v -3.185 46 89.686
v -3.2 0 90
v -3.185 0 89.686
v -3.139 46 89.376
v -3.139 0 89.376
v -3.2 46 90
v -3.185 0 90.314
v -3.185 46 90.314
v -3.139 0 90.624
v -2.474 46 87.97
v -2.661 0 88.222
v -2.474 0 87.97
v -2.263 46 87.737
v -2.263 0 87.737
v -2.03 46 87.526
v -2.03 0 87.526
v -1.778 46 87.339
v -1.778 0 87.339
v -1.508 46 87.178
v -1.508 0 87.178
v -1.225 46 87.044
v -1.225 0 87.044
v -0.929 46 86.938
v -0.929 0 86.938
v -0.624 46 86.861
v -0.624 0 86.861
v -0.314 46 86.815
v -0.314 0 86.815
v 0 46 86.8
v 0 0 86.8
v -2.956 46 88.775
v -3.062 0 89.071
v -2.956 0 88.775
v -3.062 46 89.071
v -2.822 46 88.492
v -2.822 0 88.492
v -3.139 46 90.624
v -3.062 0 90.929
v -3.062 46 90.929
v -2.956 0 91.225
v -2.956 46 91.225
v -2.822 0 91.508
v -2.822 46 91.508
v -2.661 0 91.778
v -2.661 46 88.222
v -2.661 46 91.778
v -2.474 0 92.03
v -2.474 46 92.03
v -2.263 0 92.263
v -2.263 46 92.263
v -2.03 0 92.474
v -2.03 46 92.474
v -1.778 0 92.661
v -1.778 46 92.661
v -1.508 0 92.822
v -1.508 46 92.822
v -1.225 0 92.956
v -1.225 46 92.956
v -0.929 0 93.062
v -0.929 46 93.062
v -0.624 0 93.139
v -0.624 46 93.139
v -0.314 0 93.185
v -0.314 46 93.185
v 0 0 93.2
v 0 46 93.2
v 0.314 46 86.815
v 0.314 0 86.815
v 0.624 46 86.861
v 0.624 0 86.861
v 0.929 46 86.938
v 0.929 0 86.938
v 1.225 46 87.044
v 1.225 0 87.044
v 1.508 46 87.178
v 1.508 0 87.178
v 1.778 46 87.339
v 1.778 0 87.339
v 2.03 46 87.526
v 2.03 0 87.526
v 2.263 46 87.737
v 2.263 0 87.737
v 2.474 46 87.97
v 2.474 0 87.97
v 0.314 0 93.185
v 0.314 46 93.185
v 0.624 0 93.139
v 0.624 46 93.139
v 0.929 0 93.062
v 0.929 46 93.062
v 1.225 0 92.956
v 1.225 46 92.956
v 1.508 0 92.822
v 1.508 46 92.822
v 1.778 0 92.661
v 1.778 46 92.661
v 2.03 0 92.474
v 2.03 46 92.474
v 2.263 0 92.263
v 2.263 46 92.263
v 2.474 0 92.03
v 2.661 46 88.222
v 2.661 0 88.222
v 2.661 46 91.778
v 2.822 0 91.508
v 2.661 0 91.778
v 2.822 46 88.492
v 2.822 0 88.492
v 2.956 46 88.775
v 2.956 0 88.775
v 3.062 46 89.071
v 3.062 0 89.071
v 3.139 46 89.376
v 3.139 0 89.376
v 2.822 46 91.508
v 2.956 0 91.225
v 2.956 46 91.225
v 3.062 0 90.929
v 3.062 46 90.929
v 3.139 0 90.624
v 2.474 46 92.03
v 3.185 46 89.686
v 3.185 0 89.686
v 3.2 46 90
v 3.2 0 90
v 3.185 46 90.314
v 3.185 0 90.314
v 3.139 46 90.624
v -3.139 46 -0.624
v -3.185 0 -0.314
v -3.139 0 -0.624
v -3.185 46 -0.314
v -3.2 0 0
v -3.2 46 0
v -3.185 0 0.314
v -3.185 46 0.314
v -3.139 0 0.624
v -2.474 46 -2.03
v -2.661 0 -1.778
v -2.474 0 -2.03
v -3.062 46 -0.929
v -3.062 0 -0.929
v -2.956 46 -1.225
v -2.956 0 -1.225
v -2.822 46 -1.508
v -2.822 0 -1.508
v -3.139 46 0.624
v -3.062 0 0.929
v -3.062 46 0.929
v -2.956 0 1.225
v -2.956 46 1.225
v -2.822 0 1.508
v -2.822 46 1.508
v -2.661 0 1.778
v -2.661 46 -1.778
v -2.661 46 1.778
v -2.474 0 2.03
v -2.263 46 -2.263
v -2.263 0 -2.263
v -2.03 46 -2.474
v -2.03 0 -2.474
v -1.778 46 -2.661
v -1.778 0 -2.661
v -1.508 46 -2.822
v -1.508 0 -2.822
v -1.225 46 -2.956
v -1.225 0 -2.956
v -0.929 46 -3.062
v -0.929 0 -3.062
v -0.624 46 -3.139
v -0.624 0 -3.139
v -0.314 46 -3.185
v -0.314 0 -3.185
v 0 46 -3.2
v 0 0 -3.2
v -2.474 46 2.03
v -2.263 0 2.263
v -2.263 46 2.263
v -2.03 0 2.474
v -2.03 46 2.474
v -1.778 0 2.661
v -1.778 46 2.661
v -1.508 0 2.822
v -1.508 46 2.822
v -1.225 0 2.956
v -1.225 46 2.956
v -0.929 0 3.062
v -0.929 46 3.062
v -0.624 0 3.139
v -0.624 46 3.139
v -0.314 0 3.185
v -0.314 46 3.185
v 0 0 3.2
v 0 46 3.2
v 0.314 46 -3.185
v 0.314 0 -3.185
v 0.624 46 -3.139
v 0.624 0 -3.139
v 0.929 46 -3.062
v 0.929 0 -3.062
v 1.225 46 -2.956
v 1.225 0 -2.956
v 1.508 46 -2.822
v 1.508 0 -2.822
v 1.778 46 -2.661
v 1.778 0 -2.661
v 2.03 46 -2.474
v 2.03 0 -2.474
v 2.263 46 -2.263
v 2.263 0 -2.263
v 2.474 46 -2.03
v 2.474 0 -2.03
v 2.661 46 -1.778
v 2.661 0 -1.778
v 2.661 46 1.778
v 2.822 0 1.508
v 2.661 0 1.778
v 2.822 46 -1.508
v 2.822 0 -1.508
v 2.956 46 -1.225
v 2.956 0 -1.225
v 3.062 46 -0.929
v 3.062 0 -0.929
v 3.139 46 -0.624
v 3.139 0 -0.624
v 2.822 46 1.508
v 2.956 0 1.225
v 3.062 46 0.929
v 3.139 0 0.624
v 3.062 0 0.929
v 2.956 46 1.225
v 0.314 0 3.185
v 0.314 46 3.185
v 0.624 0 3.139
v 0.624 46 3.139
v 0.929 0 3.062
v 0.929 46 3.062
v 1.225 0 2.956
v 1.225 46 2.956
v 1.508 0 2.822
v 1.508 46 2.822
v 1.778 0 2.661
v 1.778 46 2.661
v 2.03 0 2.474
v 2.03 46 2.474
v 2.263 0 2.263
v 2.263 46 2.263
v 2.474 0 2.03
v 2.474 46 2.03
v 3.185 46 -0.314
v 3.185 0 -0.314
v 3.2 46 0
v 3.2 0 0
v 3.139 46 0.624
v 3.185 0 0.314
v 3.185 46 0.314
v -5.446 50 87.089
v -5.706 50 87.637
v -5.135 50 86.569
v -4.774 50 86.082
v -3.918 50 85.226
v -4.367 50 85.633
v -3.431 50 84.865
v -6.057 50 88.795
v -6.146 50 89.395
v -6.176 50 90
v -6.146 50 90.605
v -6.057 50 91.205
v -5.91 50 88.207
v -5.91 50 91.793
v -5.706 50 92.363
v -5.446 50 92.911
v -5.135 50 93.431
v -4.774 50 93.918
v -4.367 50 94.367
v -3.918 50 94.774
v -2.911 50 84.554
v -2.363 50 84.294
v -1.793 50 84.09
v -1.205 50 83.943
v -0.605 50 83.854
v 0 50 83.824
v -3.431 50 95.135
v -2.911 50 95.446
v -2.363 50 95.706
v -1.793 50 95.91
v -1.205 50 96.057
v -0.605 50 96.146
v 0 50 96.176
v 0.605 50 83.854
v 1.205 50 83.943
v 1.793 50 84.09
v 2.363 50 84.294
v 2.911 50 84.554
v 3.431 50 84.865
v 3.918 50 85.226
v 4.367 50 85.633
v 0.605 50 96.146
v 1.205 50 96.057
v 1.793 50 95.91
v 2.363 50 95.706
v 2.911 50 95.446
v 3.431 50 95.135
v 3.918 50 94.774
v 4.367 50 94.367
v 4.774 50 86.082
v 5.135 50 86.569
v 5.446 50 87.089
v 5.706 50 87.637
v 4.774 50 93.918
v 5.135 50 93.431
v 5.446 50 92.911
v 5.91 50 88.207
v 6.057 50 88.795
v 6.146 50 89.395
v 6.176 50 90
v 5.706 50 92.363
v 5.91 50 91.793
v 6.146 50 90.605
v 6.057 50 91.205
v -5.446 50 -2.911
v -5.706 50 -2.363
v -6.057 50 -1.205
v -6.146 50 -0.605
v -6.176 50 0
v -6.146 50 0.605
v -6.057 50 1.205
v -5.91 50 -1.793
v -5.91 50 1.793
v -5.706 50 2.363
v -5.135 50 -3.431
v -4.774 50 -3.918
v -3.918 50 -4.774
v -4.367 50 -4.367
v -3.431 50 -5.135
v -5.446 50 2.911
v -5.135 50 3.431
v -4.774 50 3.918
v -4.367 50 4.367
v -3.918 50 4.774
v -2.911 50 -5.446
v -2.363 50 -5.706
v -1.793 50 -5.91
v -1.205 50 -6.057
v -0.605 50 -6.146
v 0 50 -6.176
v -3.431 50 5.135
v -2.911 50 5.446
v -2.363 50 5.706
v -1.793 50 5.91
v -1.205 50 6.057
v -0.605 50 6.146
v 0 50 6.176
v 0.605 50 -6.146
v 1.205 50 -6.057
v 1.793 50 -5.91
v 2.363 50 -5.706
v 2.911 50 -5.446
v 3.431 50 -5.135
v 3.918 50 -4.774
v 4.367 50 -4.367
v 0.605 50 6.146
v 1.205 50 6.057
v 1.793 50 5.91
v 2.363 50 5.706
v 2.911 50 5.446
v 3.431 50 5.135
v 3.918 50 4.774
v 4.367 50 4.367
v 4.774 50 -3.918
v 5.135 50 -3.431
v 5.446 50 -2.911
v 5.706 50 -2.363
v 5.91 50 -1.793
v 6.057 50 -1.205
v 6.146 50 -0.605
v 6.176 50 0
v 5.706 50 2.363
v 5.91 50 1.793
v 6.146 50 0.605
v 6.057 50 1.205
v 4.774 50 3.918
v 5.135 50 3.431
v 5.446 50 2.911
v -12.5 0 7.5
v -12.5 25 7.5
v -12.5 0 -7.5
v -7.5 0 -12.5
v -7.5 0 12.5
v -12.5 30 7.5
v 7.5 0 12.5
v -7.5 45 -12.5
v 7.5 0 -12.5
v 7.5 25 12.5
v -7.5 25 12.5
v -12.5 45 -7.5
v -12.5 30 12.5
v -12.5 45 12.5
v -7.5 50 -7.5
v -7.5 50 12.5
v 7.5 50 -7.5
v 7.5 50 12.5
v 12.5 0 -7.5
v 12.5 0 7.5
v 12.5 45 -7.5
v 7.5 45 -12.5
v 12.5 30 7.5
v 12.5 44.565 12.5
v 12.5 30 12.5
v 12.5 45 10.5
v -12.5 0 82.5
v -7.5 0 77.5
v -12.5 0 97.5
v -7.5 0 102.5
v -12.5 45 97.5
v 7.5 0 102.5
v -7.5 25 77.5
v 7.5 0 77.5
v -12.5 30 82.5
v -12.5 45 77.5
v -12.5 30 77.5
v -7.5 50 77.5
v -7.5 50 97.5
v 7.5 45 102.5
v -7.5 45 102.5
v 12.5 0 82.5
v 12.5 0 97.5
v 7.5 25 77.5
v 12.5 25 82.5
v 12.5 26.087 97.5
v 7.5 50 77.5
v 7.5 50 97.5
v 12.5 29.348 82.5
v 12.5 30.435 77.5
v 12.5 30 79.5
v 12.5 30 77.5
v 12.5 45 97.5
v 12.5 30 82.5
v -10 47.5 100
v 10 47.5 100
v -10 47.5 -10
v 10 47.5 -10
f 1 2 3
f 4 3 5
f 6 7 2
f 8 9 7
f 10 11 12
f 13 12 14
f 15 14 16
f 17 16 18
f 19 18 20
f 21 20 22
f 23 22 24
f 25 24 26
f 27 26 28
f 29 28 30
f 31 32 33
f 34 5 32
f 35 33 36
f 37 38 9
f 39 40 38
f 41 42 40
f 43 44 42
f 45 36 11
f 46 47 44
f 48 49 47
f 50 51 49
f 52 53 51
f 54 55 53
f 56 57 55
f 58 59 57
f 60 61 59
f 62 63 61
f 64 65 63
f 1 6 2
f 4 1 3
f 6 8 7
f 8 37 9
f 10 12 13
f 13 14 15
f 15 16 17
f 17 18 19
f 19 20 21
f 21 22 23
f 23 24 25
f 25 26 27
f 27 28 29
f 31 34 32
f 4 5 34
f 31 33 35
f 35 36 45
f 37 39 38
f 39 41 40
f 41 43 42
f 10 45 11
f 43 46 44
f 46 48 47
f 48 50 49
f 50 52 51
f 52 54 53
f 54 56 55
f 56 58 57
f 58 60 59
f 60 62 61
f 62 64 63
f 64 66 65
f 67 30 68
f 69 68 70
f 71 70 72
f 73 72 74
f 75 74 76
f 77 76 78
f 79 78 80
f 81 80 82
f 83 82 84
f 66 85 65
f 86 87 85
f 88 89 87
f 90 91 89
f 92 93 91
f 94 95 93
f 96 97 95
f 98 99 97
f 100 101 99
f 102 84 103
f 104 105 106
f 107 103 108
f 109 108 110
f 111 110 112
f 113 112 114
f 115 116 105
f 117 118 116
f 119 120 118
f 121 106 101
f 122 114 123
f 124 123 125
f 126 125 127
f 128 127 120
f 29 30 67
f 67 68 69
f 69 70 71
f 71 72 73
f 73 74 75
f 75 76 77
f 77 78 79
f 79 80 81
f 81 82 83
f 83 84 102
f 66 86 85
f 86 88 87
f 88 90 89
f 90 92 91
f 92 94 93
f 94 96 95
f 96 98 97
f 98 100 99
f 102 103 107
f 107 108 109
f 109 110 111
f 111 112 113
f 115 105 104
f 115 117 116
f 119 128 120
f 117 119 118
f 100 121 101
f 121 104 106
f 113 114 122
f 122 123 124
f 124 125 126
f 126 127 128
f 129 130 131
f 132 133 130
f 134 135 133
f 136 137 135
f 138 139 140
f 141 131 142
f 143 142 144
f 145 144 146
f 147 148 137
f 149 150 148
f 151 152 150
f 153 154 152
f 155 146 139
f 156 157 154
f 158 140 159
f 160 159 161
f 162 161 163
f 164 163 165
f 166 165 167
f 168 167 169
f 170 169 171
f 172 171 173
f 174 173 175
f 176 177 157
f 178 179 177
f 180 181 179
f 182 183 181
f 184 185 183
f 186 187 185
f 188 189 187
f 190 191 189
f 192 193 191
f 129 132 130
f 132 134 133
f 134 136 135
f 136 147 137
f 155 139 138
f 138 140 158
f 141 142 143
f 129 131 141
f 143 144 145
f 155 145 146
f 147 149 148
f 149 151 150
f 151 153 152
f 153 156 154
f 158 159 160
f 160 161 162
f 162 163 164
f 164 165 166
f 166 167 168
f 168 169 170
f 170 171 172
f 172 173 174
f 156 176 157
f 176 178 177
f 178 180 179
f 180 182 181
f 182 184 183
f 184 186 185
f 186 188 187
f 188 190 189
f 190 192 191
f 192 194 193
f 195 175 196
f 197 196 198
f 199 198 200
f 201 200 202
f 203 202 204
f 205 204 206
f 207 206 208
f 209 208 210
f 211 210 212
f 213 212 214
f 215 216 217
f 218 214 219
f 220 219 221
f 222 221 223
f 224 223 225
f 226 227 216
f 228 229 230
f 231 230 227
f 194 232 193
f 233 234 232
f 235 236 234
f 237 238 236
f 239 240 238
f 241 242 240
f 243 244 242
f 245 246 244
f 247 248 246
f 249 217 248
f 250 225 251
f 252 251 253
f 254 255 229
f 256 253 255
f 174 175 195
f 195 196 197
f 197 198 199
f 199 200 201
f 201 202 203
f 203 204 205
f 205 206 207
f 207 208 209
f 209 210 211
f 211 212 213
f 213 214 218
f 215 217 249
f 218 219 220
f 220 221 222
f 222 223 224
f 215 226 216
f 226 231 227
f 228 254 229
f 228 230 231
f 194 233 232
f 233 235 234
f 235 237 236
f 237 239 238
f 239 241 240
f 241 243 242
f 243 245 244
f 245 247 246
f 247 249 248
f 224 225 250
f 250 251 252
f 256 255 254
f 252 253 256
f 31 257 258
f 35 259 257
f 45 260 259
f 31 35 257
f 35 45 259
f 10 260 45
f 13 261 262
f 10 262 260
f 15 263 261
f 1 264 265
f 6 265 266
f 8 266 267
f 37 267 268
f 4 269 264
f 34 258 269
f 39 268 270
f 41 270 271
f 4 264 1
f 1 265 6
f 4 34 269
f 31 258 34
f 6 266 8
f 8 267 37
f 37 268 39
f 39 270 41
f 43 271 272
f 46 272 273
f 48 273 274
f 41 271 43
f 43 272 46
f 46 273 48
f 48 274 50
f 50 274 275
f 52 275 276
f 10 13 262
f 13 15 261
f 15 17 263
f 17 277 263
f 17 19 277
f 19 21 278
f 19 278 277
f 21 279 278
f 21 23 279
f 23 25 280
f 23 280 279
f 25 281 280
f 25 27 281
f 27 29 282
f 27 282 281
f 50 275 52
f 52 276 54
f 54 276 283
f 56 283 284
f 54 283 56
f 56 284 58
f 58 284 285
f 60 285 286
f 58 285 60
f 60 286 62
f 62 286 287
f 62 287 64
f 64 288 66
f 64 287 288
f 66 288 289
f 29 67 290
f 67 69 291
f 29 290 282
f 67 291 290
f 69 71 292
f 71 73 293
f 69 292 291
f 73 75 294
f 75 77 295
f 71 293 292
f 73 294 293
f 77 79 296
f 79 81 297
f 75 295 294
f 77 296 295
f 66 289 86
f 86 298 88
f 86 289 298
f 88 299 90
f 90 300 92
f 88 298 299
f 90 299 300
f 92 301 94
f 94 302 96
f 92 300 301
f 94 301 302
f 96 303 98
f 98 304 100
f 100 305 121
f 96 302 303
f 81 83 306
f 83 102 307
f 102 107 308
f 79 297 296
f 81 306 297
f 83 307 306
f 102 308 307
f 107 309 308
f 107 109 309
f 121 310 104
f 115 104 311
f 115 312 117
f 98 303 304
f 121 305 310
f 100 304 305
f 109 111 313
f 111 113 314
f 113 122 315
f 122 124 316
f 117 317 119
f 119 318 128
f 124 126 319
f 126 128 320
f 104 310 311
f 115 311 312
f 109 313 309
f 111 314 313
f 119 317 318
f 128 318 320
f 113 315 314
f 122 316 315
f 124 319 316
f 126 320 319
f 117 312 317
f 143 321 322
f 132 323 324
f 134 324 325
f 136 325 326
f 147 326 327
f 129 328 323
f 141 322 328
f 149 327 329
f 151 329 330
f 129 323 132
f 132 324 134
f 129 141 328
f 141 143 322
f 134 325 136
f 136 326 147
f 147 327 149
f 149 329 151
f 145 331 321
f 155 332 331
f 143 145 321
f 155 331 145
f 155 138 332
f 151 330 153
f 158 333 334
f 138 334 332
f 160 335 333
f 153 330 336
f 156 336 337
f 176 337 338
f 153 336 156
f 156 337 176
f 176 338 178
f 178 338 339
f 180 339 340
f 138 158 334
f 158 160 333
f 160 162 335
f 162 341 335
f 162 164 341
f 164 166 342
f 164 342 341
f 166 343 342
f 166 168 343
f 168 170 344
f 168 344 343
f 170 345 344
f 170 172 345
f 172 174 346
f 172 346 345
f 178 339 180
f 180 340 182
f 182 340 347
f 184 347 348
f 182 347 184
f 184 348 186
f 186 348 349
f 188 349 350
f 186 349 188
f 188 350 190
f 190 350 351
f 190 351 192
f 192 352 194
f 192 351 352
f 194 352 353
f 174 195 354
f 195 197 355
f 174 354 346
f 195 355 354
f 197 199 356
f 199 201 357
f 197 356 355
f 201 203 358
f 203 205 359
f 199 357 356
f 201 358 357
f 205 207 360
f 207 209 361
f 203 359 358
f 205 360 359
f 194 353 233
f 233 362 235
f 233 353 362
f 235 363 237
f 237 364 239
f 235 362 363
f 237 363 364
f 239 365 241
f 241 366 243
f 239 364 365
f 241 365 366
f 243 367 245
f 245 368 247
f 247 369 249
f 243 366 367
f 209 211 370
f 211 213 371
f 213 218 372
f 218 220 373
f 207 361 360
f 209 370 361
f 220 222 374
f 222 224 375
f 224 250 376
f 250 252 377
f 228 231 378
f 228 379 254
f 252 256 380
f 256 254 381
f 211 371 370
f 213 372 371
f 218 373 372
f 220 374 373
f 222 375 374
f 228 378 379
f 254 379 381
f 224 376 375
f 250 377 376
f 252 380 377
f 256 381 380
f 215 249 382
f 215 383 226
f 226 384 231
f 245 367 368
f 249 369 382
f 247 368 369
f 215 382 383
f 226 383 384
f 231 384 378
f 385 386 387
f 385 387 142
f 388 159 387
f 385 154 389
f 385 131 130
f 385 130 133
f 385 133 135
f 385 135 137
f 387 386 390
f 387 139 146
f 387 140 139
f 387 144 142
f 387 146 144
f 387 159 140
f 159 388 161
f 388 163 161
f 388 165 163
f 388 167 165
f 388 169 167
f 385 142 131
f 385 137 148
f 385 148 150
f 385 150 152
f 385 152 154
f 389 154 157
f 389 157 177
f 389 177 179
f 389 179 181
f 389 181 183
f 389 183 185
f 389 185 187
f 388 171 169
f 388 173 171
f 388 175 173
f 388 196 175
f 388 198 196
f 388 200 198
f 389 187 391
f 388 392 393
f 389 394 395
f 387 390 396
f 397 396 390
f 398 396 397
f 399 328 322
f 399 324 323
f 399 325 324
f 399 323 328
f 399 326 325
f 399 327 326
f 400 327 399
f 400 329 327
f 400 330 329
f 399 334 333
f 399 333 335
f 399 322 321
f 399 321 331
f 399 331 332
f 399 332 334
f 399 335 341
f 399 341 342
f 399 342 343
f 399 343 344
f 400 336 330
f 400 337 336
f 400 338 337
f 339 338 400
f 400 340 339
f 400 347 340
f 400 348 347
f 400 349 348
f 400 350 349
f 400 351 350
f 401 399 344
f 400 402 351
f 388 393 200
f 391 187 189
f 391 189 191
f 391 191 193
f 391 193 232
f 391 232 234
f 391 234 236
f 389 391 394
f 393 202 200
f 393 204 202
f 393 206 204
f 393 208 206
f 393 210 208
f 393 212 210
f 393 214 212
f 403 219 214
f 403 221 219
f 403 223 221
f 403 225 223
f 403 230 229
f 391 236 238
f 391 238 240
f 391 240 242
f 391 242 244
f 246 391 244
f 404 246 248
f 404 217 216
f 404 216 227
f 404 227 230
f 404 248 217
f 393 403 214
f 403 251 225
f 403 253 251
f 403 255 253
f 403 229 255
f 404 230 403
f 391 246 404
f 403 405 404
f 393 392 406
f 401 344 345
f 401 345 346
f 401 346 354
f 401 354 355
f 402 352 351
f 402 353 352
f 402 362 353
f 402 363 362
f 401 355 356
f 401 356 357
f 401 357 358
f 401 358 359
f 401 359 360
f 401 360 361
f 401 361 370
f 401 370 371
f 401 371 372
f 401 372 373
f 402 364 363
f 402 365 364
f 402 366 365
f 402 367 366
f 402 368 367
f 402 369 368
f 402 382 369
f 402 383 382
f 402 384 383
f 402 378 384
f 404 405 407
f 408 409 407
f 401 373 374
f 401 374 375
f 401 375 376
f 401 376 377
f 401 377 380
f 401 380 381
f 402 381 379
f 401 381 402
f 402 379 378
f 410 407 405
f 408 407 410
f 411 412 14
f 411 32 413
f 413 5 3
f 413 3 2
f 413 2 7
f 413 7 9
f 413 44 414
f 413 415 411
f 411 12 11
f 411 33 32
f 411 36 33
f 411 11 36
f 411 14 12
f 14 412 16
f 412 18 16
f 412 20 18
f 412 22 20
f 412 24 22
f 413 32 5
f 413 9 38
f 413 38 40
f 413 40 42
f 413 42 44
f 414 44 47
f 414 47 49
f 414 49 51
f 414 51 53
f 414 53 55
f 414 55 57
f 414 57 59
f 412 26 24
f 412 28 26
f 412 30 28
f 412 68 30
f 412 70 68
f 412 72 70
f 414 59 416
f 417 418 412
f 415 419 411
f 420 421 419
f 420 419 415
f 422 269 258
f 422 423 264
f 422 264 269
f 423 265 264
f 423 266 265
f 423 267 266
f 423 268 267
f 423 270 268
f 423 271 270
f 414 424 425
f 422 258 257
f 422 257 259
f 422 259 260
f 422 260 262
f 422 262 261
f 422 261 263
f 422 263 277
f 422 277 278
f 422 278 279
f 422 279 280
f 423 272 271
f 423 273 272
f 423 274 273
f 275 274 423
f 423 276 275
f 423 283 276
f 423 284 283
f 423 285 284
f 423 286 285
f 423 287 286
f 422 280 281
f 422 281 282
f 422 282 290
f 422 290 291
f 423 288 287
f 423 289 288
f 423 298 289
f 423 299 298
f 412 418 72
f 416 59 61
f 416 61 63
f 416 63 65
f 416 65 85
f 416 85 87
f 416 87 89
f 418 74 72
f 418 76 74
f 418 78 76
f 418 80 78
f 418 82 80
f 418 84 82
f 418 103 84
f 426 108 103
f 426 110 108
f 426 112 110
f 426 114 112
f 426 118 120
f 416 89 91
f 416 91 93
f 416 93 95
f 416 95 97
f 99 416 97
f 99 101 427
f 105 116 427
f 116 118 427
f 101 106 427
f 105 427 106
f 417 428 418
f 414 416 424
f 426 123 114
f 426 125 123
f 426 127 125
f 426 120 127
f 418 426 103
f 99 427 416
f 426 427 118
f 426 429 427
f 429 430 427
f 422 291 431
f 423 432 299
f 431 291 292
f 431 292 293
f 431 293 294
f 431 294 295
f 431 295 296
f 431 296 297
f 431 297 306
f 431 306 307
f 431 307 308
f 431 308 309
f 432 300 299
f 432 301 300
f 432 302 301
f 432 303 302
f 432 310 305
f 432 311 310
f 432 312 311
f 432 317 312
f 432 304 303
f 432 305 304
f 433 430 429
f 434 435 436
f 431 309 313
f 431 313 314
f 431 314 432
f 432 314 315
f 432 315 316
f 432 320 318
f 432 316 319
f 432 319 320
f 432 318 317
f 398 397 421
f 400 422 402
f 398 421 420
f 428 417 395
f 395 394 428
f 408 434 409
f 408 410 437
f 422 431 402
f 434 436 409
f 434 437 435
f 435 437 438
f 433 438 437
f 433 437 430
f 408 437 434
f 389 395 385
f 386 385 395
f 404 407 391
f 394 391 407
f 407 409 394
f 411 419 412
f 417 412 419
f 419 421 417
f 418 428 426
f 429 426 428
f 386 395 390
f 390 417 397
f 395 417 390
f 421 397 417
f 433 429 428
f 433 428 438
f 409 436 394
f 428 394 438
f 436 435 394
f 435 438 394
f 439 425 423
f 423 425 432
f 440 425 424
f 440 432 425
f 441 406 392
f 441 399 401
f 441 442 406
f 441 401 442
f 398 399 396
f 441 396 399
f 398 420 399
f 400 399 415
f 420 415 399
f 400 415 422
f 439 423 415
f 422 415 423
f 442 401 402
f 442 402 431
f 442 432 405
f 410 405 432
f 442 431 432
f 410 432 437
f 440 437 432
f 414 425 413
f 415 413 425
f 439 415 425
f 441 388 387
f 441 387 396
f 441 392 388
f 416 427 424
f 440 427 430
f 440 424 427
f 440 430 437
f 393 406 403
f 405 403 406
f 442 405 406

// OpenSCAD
// =====================================================================
// Simple C-Shaped Gate Handle (3-Cube Version) - V0.18
// 45-degree chamfers on all edges except the door-contact edges
// Inner C-opening corner chamfers miter: each bevel runs up to the
// neighboring bevel plane, so the two faces meet along one clean
// diagonal miter line (no overlap, no end-cap faces, no sliver)
// =====================================================================

version = 0.18;

// --- Parameters ---
bolt_distance = 90;      // Distance between bolt centers (mm)
post_width    = 25;      // Width (X) of posts and grip bar
post_depth    = 50;      // Depth from door to front face (Y)
post_height   = 25;      // Height (Z) of the mounting posts
grip_thickness= 25;      // Thickness (Y) of the middle grip bar

bolt_dia      = 6.4;     // M6 bolt clearance hole diameter (with tolerance)
head_dia      = 12.5;    // M6 countersunk head diameter
cs_depth      = 4.0;     // Countersink depth

chamfer       = 5.0;     // 45-degree chamfer size on all non-door edges (mm)

$fn = 64;

// --- Base Solid (Union of exactly three clean cubes) ---
module base_solid() {
    union() {
        // 1. Bottom Post Cube (Back face flush at Y = 0)
        translate([0, post_depth/2, 0])
            cube([post_width, post_depth, post_height], center = true);

        // 2. Top Post Cube (Back face flush at Y = 0, centered at Z = bolt_distance)
        translate([0, post_depth/2, bolt_distance])
            cube([post_width, post_depth, post_height], center = true);

        // 3. Middle Grip Bar Cube (Spans full height between post outer edges, flush front)
        translate([0, post_depth - grip_thickness/2, bolt_distance / 2])
            cube([post_width, grip_thickness, bolt_distance + post_height], center = true);
    }
}

// --- 45-degree Chamfer Wedge ---
// Canonical right-triangular prism: one leg of `chamfer` along +X, one leg
// along +Y, extruded along +Z. The chamfered edge runs along +Z from the
// origin and the two legs lie in the two faces that meet at that edge.
// Callers position the edge start with translate() and point X/Y/Z at the
// required directions with rotate()/mirror().
module chamfer_wedge(len) {
    linear_extrude(height = len)
        polygon(points = [[0, 0], [chamfer, 0], [0, chamfer]],
                paths = [[0, 1, 2, 0]]);
}

// --- Convex Edge Chamfers (material removed) ---
// Every convex edge is chamfered except the 8 perimeter edges of the two
// back (Y = 0) mounting faces: those touch the door and stay sharp so the
// handle sits flush. (At the 8 corners of those faces, the chamfer of an
// adjacent edge naturally bevels the corner of the flat face.)
module chamfer_wedges() {
    W     = post_width;
    H     = post_height;
    D     = post_depth;
    gap   = D - grip_thickness;        // Y of the grip back face
    top   = bolt_distance + H/2;       // Outer Z of top post / grip
    bot   = -H/2;                      // Outer Z of bottom post / grip
    z_mid = bolt_distance - H/2;       // Z of top post bottom face

    // Half-space keepers used to miter the inner bevels at the corners.
    // Each is a big box whose boundary face is the neighboring bevel
    // plane and whose body is the kept half-space (400 mm deep, 800 mm
    // wide in-plane). intersection() with a wedge trims the wedge
    // exactly at that plane, so adjacent bevel faces merge into one
    // clean face pair meeting along a single diagonal miter line
    // (no overlap region, no flat end-caps, no sliver).
    module keep_XY_le(c)  { translate([c,0,0])   rotate([0,0,225])  translate([0,-400,-400]) cube([400,800,800]); } // X+Y <= c
    module keep_YX_le(c)  { translate([0,c,0])   rotate([0,0,-45])  translate([0,-400,-400]) cube([400,800,800]); } // Y-X <= c
    module keep_XZ_le(c)  { translate([0,0,c])   rotate([0,135,0])  translate([0,-400,-400]) cube([400,800,800]); } // X+Z <= c
    module keep_XZ_ge(c)  { translate([0,0,c])   rotate([0,-45,0])  translate([0,-400,-400]) cube([400,800,800]); } // X+Z >= c
    module keep_XZd_le(c) { translate([c,0,0])   rotate([0,-135,0]) translate([0,-400,-400]) cube([400,800,800]); } // X-Z <= c
    module keep_XZd_ge(c) { translate([c,0,0])   rotate([0,45,0])   translate([0,-400,-400]) cube([400,800,800]); } // X-Z >= c

    union() {
        // Front face (Y = D) perimeter
        translate([-W/2, D, top]) rotate(90, [0,1,0]) mirror([0,1,0])
            chamfer_wedge(W);                                                 // front top
        translate([-W/2, D, bot]) rotate(180, [1,0,0]) rotate(90, [0,1,0])
            chamfer_wedge(W);                                                 // front bottom
        translate([-W/2, D, bot]) mirror([0,1,0])
            chamfer_wedge(bolt_distance + H);                                 // front left
        translate([ W/2, D, bot]) rotate(180, [0,0,1])
            chamfer_wedge(bolt_distance + H);                                 // front right

        // Top / bottom face side edges
        translate([-W/2, 0, top]) rotate(-90, [1,0,0])
            chamfer_wedge(D);                                                 // top left
        translate([-W/2, 0, bot]) rotate(90, [1,0,0]) mirror([0,0,1])
            chamfer_wedge(D);                                                 // bottom left
        translate([ W/2, 0, top]) rotate(-90, [1,0,0]) mirror([1,0,0])
            chamfer_wedge(D);                                                 // top right
        translate([ W/2, 0, bot]) rotate(90, [1,0,0]) rotate(180, [0,1,0])
            chamfer_wedge(D);                                                 // bottom right

        // Inner edges of the C opening (convex side edges)
        // Every inner bevel is cut exactly at the neighboring bevel
        // plane, so at each corner the two bevel faces share one
        // diagonal miter edge instead of overlapping or ending flat.

        // --- Post top / bottom bevels: run out to the grip-back plane ---
        intersection() {                                                      // bottom post top / left face
            translate([-W/2, 0, H/2]) rotate(-90, [1,0,0])
                chamfer_wedge(gap + chamfer);
            keep_XY_le(-W/2 + gap + chamfer);                                 // trim at grip-back bevel plane
        }
        intersection() {                                                      // bottom post top / right face
            translate([ W/2, 0, H/2]) rotate(-90, [1,0,0]) mirror([1,0,0])
                chamfer_wedge(gap + chamfer);
            keep_YX_le(-W/2 + gap + chamfer);                                 // trim at grip-back bevel plane
        }
        intersection() {                                                      // top post bottom / left face
            translate([-W/2, 0, z_mid]) rotate(90, [1,0,0]) mirror([0,0,1])
                chamfer_wedge(gap + chamfer);
            keep_XY_le(-W/2 + gap + chamfer);                                 // trim at grip-back bevel plane
        }
        intersection() {                                                      // top post bottom / right face
            translate([ W/2, 0, z_mid]) rotate(90, [1,0,0]) rotate(180, [0,1,0])
                chamfer_wedge(gap + chamfer);
            keep_YX_le(-W/2 + gap + chamfer);                                 // trim at grip-back bevel plane
        }

        // --- Grip-back bevels: cut at both post step planes ---
        intersection() {                                                      // grip back / left face
            translate([-W/2, gap, H/2 - chamfer])
                chamfer_wedge(bolt_distance - H + 2*chamfer);
            intersection() {
                keep_XZd_le(-W/2 - H/2 + chamfer);                            // trim at bottom post bevel plane (X-Z = -20)
                keep_XZ_le(-W/2 + z_mid + chamfer);                           // trim at top post step plane
            }
        }
        intersection() {                                                      // grip back / right face
            translate([ W/2, gap, H/2 - chamfer]) mirror([1,0,0])
                chamfer_wedge(bolt_distance - H + 2*chamfer);
            intersection() {
                keep_XZ_ge(W/2 + H/2 - chamfer);                              // trim at bottom post bevel plane (X+Z = 20)
                keep_XZd_ge(W/2 - z_mid - chamfer);                           // trim at top post step plane
            }
        }
    }
}

// --- Concave Edge Chamfers (material added) ---
// The two step edges where the posts' inner faces meet the grip back face
// are concave (inner corners): their 45-degree chamfer is a fillet bead
// that fills the corner.
module chamfer_fillets() {
    W     = post_width;
    H     = post_height;
    gap   = post_depth - grip_thickness;
    z_mid = bolt_distance - H/2;

    union() {
        translate([-W/2, gap, H/2]) rotate(180, [1,0,0]) rotate(90, [0,1,0])
            chamfer_wedge(W);                                                 // bottom post top / grip back
        translate([-W/2, gap, z_mid]) rotate(90, [0,1,0]) mirror([0,1,0])
            chamfer_wedge(W);                                                 // top post bottom / grip back
    }
}

// --- Main Module ---
module gate_handle() {
    difference() {
        union() {
            base_solid();

            // --- 45-degree fillets on the two concave (inner) edges ---
            //chamfer_fillets();  // disabled for now: inner corners use blended chamfers
        }

        // --- 45-degree chamfers on the 14 convex non-door edges ---
        chamfer_wedges();

        // --- Bottom Mounting Hole & Countersink ---
        translate([0, 0, 0])
            mounting_hole();

        // --- Top Mounting Hole & Countersink ---
        translate([0, 0, bolt_distance])
            mounting_hole();
    }
}

// --- Corrected Mounting Hole Module ---
module mounting_hole() {
    rotate([-90, 0, 0]) {
        // Straight clearance hole from back (Y = 0) to front
        cylinder(h = post_depth, r = bolt_dia/2);
        
        // Countersink cone starting inside the front face and widening outwards
        translate([0, 0, post_depth - cs_depth])
            cylinder(h = cs_depth + 0.1, r1 = bolt_dia/2, r2 = head_dia/2);
    }
}

// Render the handle
gate_handle();

// Version logging
echo(str("Rendering Gate Handle Version: ", version));
